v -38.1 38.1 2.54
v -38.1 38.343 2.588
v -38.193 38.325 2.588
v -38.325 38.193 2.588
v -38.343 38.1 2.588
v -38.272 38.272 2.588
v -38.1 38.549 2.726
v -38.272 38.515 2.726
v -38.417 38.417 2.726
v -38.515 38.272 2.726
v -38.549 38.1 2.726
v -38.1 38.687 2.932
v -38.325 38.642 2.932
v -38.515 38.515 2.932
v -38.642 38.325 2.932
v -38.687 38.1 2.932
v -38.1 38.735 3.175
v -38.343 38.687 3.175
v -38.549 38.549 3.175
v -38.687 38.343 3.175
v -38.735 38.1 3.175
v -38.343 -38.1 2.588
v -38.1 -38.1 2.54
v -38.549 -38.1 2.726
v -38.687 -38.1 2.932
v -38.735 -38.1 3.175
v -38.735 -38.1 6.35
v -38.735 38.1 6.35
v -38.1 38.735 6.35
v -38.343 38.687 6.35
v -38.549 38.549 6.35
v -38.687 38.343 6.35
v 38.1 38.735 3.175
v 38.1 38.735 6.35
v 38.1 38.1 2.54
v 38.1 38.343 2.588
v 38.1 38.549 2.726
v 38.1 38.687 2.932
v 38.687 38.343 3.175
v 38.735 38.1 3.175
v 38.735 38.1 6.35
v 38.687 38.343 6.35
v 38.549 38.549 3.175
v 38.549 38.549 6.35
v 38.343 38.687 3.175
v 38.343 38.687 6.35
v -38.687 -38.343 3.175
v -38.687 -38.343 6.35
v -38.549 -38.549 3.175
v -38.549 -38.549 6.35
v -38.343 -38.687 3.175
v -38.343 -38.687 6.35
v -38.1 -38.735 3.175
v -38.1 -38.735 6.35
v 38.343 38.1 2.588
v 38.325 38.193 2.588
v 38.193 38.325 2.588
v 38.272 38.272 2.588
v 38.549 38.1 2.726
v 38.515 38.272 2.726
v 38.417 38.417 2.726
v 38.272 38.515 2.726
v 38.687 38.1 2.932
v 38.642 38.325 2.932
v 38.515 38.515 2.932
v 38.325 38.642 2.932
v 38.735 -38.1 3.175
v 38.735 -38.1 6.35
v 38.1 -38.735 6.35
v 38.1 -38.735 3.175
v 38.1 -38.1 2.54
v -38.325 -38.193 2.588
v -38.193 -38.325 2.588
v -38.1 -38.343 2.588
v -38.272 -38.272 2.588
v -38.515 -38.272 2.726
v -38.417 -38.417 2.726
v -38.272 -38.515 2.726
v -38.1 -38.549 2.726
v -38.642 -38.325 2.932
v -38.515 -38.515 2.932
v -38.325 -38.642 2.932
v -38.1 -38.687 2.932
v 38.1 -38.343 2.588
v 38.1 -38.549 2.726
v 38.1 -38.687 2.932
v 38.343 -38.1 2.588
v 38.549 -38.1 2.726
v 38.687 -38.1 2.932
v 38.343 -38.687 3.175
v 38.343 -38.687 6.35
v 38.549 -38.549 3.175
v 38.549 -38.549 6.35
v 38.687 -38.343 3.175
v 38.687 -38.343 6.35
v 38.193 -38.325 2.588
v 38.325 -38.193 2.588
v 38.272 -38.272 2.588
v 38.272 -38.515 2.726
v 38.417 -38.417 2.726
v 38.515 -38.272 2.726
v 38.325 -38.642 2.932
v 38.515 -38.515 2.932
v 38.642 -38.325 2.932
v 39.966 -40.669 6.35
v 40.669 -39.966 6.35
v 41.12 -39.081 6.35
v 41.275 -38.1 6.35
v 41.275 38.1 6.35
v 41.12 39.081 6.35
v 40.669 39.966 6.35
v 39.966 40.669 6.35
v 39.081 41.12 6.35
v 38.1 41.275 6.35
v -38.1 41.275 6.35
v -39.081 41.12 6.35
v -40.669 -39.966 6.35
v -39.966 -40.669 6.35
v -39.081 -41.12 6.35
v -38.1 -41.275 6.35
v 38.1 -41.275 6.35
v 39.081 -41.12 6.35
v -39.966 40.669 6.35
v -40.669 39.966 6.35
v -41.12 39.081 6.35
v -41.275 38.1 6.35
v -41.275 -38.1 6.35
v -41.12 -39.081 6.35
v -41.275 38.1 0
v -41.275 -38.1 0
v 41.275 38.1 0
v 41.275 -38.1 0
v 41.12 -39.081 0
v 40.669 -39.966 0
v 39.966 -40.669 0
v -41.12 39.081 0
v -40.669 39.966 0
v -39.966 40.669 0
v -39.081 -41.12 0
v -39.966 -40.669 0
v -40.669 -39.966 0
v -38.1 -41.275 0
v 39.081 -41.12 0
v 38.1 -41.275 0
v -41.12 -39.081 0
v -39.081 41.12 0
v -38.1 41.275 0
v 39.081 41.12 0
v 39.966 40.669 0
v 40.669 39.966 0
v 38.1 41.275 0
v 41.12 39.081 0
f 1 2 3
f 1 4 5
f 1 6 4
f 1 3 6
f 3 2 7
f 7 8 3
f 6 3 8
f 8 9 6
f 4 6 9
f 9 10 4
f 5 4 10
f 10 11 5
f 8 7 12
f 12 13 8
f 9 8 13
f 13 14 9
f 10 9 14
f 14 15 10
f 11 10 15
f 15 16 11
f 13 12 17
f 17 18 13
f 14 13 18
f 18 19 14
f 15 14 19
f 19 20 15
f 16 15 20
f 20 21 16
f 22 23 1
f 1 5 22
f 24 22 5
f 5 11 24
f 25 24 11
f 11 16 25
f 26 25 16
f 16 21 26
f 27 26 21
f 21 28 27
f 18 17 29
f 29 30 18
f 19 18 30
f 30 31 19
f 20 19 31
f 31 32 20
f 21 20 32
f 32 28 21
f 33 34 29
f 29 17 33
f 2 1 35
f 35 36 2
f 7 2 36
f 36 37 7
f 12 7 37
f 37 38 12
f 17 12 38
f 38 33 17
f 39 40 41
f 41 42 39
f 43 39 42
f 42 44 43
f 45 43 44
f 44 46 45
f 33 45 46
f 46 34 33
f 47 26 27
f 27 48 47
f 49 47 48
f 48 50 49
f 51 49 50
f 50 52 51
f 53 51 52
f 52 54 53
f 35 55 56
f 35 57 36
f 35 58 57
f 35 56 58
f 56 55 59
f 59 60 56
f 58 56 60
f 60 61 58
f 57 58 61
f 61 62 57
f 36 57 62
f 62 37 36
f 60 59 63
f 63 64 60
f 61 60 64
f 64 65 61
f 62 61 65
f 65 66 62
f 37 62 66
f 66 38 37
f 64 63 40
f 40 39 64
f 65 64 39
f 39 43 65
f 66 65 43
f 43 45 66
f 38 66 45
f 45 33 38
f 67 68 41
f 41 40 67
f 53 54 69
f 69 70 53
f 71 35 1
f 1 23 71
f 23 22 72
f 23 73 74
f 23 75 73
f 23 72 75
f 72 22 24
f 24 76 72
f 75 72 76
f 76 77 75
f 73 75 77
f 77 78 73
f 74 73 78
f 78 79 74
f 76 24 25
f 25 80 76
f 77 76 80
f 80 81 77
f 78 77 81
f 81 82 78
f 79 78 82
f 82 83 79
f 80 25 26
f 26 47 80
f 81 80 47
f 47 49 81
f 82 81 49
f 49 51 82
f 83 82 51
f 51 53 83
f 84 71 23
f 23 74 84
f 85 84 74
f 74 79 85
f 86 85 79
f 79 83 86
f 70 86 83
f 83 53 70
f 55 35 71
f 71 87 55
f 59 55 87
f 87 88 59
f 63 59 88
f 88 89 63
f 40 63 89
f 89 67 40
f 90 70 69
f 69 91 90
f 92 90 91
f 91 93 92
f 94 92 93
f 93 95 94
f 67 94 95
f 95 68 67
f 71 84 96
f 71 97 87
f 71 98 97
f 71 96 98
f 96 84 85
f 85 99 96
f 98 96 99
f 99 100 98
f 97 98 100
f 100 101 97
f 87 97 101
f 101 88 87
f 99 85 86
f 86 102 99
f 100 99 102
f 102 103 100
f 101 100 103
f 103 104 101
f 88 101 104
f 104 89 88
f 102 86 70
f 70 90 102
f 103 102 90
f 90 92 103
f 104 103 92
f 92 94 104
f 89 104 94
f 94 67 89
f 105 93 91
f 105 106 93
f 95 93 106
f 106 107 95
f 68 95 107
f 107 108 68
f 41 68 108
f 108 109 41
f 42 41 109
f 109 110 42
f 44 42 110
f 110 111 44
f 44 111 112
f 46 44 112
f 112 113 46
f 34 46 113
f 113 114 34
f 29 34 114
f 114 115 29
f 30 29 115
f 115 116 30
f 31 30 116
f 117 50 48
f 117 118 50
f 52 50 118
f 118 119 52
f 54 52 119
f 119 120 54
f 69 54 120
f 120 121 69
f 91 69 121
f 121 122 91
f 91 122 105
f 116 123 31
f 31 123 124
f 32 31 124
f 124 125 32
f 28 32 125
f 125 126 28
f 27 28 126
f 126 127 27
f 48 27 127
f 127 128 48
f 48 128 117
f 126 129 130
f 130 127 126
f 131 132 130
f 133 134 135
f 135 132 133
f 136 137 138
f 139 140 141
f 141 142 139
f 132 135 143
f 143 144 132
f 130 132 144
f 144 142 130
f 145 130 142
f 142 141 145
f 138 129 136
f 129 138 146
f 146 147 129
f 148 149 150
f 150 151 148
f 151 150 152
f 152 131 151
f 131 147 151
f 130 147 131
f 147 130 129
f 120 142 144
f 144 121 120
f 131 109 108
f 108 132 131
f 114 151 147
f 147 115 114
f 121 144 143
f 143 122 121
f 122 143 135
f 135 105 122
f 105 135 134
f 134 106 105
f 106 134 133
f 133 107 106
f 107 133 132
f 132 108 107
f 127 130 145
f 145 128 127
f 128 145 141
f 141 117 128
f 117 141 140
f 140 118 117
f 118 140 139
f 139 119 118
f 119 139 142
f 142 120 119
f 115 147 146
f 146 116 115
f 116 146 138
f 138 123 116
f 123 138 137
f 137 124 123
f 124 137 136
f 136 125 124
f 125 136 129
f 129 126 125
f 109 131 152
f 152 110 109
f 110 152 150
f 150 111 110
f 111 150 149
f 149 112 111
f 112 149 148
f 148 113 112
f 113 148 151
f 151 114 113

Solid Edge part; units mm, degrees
sketch "Sketch1" plane through (0, 0, 0) normal (0, 0, 1) x (1, 0, 0)
  line L0 (-38.735, -38.735) -> (38.735, -38.735)
  line L1 (38.735, -38.735) -> (38.735, 38.735)
  line L2 (38.735, 38.735) -> (-38.735, 38.735)
  line L3 (-38.735, 38.735) -> (-38.735, -38.735)
extrude "Protrusion1" add sketch "Sketch1" along normal blind 2.54
sketch "Sketch2" plane through (0, 0, 0) normal (0, 0, 1) x (1, 0, 0)
  line L0 (-41.275, -41.275) -> (41.275, -41.275)
  line L1 (41.275, -41.275) -> (41.275, 41.275)
  line L2 (41.275, 41.275) -> (-41.275, 41.275)
  line L3 (-41.275, 41.275) -> (-41.275, -41.275)
  line L4 (-38.735, -38.735) -> (38.735, -38.735)
  line L5 (38.735, -38.735) -> (38.735, 38.735)
  line L6 (38.735, 38.735) -> (-38.735, 38.735)
  line L7 (-38.735, 38.735) -> (-38.735, -38.735)
  dimension "D1" = 77.47
  dimension "D2" = 77.47
  dimension "D3" = 2.54
extrude "ExtrudedProtrusion_2" add sketch "Sketch2" along normal blind 6.35
fillet "Round_1" radius 3.175 4 edges at (41.275, -41.275, 3.175) (41.275, 41.275, 3.175) (-41.275, 41.275, 3.175) (-41.275, -41.275, 3.175)
fillet "Round_2" radius 0.635 4 edges at (-38.735, 0, 2.54) (0, -38.735, 2.54) (38.735, 0, 2.54) (0, 38.735, 2.54)
fillet "Round_3" radius 0.635 8 edges at (-38.735, 38.735, 4.7625) (-38.549, 38.549, 2.726) (-38.549, -38.549, 2.726) (-38.735, -38.735, 4.7625) (38.735, -38.735, 4.7625) (38.549, -38.549, 2.726) (38.735, 38.735, 4.7625) (38.549, 38.549, 2.726)
